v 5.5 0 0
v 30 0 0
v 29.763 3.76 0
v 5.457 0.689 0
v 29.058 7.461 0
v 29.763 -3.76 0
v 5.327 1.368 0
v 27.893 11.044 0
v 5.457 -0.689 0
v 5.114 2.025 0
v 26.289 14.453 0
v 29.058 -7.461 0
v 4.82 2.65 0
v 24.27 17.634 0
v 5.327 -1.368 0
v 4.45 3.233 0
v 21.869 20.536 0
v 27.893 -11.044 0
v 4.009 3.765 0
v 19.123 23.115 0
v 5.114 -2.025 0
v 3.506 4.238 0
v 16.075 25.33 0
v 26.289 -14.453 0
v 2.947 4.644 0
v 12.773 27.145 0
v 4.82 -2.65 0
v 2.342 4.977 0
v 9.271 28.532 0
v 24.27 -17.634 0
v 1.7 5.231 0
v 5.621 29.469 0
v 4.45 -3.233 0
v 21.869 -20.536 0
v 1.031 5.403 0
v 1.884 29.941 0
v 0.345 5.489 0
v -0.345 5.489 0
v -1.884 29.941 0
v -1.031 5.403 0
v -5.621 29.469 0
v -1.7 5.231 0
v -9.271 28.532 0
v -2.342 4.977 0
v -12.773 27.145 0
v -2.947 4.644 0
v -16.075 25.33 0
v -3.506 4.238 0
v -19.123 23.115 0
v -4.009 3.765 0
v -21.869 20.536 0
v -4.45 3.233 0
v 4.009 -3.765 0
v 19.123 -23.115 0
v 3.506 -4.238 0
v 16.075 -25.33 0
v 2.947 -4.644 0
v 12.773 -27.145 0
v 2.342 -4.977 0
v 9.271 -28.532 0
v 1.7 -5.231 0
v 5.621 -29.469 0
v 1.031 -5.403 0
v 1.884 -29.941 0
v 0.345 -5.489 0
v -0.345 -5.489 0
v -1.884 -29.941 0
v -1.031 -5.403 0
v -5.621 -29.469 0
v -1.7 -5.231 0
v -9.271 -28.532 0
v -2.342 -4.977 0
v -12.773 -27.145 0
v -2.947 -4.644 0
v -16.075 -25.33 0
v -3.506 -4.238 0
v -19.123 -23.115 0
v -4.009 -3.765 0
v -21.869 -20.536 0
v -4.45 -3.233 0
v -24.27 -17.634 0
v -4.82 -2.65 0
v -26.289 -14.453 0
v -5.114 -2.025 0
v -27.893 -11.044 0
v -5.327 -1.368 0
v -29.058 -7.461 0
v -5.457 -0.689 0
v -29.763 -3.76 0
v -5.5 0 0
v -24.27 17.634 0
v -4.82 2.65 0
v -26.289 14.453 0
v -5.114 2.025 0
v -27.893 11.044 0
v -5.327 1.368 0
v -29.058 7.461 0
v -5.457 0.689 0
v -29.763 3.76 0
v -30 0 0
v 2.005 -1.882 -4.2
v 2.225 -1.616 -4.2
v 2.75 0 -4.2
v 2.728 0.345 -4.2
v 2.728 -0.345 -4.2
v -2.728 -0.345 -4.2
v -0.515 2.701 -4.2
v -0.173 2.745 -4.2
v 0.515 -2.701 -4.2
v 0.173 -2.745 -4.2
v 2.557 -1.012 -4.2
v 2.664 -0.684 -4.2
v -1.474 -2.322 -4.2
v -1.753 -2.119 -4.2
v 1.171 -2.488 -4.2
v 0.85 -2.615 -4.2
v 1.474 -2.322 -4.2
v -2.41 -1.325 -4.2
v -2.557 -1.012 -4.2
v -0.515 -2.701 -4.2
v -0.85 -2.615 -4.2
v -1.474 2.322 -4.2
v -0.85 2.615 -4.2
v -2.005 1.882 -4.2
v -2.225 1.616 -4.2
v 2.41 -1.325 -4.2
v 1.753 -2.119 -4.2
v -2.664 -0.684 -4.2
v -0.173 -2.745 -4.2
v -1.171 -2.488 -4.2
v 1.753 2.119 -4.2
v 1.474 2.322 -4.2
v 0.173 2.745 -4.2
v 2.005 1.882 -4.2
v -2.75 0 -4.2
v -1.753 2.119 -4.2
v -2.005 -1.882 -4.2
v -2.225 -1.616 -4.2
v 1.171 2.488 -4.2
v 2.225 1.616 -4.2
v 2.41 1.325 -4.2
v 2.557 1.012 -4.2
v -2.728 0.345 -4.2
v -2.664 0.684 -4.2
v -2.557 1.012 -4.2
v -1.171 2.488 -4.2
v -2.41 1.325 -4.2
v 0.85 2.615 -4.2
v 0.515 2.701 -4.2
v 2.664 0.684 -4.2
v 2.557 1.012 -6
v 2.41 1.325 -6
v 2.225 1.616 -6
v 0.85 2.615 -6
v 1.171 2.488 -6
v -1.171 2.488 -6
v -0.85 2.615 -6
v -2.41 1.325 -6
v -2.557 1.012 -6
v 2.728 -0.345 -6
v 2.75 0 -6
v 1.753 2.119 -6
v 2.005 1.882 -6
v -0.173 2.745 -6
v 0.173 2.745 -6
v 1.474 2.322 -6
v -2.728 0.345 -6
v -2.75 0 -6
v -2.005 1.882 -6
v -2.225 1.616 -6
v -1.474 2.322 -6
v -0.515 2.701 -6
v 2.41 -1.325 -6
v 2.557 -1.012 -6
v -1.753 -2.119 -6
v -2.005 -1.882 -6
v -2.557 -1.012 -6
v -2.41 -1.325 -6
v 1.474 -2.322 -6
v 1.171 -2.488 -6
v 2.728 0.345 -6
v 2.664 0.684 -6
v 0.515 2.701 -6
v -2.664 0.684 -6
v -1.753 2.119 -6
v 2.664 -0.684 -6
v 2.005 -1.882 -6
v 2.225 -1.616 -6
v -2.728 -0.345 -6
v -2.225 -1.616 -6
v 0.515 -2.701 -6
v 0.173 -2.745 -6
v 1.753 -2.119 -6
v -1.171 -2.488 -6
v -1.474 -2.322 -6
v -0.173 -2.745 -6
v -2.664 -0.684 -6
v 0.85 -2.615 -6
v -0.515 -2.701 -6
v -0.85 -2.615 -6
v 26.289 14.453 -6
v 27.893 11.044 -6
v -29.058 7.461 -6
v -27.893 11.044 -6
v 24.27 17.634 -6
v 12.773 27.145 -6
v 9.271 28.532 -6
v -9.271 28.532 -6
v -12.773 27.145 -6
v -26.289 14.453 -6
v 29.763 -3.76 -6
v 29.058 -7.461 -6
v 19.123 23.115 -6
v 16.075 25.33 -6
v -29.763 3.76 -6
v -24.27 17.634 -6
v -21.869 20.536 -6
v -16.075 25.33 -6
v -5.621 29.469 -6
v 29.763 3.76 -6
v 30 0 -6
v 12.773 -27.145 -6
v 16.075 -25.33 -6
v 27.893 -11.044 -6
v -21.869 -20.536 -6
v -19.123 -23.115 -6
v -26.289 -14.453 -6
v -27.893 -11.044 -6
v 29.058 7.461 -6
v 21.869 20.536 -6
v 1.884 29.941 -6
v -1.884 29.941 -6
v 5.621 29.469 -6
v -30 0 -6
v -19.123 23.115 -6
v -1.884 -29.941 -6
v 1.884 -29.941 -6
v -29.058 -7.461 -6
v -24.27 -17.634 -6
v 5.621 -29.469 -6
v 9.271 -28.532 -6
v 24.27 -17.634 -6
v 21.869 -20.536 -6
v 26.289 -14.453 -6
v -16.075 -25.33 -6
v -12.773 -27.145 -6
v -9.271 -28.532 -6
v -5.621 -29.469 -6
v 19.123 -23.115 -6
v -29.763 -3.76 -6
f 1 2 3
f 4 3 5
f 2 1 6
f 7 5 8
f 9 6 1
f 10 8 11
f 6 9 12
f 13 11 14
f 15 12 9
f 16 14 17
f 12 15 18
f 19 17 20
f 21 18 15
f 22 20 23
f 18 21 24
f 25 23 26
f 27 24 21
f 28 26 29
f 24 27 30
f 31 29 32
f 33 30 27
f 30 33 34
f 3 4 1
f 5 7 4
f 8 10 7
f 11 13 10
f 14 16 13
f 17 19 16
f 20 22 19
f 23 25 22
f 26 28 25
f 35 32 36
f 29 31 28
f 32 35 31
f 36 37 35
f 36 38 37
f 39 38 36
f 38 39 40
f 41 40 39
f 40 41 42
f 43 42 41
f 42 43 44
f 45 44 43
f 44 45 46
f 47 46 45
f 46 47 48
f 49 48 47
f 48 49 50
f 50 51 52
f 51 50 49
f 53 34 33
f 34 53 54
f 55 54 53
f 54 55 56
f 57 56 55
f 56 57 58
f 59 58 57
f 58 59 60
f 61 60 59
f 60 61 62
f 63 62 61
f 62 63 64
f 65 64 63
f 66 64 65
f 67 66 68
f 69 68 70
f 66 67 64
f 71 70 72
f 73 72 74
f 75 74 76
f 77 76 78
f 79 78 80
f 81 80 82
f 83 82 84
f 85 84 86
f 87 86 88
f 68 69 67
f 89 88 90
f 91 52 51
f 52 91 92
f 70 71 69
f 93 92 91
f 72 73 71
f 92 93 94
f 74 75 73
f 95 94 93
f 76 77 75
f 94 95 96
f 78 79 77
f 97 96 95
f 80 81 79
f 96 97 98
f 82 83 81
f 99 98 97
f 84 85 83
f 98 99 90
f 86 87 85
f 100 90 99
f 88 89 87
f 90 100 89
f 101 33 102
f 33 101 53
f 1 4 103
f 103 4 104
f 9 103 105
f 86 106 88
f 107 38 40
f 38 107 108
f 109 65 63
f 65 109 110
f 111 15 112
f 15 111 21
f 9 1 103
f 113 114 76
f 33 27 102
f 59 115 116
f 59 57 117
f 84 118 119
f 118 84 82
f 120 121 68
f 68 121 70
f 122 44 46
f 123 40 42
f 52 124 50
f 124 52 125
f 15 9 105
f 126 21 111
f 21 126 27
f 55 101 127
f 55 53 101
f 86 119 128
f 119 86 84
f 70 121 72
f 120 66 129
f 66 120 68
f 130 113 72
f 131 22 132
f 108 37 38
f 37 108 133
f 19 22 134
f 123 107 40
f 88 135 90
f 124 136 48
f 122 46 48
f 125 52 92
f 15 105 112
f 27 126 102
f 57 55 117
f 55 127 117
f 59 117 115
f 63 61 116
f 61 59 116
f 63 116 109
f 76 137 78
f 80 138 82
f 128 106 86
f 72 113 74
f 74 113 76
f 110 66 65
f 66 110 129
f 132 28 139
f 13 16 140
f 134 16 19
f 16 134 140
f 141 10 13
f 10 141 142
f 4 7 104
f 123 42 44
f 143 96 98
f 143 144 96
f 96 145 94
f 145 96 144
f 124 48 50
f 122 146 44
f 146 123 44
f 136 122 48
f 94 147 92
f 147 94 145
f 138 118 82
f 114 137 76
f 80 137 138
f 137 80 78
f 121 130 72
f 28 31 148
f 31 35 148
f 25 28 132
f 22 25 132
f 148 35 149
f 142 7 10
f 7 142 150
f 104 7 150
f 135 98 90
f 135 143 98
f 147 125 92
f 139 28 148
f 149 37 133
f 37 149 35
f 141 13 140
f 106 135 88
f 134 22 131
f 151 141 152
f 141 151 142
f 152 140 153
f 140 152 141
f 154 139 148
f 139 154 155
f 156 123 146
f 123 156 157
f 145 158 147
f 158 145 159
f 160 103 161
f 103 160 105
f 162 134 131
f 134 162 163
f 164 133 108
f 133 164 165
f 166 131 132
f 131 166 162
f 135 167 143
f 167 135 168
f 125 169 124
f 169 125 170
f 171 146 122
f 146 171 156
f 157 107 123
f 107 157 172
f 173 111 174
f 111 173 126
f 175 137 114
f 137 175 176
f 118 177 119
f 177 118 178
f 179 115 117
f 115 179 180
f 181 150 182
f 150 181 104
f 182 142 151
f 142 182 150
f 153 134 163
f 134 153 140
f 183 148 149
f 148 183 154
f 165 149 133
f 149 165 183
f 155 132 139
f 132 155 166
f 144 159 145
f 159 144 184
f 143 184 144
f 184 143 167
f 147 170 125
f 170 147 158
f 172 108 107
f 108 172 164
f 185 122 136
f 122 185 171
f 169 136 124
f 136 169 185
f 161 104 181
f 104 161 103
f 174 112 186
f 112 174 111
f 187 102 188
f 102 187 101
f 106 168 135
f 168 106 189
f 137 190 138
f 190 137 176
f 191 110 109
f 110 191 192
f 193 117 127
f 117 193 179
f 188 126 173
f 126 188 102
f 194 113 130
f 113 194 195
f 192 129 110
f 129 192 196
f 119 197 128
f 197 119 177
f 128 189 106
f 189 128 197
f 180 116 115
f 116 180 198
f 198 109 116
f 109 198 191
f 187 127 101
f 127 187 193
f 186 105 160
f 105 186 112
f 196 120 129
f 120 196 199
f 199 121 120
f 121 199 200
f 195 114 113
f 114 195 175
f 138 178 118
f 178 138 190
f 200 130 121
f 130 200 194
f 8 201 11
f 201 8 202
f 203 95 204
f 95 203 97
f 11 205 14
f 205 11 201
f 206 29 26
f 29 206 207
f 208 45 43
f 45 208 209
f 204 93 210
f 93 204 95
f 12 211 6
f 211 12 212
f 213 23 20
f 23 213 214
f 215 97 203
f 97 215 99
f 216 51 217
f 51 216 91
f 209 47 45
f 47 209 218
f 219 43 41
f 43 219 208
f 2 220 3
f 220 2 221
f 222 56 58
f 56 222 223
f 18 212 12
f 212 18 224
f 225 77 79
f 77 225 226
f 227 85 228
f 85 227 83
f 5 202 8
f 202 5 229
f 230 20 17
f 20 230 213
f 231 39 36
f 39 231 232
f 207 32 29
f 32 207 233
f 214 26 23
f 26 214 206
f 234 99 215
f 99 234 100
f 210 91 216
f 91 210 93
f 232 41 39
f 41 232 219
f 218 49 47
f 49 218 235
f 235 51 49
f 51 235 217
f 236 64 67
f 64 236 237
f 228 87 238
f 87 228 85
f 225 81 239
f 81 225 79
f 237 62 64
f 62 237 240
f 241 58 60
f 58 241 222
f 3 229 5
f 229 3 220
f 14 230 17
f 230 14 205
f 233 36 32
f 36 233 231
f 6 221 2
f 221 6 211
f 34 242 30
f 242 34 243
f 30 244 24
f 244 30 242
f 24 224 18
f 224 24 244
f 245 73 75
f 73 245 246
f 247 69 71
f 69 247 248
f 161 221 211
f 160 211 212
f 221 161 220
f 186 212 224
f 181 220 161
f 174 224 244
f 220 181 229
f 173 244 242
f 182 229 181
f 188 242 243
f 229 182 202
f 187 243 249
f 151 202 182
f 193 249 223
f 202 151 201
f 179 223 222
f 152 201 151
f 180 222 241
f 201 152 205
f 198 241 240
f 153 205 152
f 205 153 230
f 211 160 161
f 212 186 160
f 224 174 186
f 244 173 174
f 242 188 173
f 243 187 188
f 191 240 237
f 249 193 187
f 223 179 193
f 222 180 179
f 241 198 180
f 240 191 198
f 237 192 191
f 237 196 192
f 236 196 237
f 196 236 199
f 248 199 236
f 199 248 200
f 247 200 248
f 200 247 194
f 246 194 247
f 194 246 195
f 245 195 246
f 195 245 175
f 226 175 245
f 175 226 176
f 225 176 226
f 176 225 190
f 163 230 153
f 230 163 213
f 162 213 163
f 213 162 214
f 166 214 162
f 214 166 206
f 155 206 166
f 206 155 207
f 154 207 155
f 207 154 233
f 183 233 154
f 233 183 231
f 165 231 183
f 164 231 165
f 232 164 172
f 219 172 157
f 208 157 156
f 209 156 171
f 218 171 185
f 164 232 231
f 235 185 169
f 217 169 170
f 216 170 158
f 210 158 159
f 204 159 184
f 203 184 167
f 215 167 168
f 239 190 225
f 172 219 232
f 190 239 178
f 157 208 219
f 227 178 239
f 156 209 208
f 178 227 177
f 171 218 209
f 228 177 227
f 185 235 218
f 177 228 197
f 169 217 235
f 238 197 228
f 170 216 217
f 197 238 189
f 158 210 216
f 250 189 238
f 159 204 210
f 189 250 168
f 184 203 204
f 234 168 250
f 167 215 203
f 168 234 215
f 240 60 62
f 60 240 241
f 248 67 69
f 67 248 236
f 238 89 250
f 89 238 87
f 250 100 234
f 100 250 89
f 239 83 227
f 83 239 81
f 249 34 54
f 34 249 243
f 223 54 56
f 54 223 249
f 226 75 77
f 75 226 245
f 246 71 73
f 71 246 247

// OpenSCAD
$fn = 50;

difference() {
	union() {
		translate(v = [0, 0, -6.0]) {
			cylinder(h = 6, r = 30.0);
		}
	}
	union() {
		translate(v = [0, 0, 0]) {
			rotate(a = [0, 0, 0]) {
				difference() {
					union() {
						translate(v = [0, 0, -9.0]) {
							cylinder(h = 9, r = 2.25);
						}
						translate(v = [0, 0, -4.2]) {
							cylinder(h = 4.2, r1 = 2.75, r2 = 5.5);
						}
						translate(v = [0, 0, -9.0]) {
							cylinder(h = 9, r = 2.75);
						}
						translate(v = [0, 0, -9.0]) {
							cylinder(h = 9, r = 2.25);
						}
					}
					union();
				}
			}
		}
	}
}
